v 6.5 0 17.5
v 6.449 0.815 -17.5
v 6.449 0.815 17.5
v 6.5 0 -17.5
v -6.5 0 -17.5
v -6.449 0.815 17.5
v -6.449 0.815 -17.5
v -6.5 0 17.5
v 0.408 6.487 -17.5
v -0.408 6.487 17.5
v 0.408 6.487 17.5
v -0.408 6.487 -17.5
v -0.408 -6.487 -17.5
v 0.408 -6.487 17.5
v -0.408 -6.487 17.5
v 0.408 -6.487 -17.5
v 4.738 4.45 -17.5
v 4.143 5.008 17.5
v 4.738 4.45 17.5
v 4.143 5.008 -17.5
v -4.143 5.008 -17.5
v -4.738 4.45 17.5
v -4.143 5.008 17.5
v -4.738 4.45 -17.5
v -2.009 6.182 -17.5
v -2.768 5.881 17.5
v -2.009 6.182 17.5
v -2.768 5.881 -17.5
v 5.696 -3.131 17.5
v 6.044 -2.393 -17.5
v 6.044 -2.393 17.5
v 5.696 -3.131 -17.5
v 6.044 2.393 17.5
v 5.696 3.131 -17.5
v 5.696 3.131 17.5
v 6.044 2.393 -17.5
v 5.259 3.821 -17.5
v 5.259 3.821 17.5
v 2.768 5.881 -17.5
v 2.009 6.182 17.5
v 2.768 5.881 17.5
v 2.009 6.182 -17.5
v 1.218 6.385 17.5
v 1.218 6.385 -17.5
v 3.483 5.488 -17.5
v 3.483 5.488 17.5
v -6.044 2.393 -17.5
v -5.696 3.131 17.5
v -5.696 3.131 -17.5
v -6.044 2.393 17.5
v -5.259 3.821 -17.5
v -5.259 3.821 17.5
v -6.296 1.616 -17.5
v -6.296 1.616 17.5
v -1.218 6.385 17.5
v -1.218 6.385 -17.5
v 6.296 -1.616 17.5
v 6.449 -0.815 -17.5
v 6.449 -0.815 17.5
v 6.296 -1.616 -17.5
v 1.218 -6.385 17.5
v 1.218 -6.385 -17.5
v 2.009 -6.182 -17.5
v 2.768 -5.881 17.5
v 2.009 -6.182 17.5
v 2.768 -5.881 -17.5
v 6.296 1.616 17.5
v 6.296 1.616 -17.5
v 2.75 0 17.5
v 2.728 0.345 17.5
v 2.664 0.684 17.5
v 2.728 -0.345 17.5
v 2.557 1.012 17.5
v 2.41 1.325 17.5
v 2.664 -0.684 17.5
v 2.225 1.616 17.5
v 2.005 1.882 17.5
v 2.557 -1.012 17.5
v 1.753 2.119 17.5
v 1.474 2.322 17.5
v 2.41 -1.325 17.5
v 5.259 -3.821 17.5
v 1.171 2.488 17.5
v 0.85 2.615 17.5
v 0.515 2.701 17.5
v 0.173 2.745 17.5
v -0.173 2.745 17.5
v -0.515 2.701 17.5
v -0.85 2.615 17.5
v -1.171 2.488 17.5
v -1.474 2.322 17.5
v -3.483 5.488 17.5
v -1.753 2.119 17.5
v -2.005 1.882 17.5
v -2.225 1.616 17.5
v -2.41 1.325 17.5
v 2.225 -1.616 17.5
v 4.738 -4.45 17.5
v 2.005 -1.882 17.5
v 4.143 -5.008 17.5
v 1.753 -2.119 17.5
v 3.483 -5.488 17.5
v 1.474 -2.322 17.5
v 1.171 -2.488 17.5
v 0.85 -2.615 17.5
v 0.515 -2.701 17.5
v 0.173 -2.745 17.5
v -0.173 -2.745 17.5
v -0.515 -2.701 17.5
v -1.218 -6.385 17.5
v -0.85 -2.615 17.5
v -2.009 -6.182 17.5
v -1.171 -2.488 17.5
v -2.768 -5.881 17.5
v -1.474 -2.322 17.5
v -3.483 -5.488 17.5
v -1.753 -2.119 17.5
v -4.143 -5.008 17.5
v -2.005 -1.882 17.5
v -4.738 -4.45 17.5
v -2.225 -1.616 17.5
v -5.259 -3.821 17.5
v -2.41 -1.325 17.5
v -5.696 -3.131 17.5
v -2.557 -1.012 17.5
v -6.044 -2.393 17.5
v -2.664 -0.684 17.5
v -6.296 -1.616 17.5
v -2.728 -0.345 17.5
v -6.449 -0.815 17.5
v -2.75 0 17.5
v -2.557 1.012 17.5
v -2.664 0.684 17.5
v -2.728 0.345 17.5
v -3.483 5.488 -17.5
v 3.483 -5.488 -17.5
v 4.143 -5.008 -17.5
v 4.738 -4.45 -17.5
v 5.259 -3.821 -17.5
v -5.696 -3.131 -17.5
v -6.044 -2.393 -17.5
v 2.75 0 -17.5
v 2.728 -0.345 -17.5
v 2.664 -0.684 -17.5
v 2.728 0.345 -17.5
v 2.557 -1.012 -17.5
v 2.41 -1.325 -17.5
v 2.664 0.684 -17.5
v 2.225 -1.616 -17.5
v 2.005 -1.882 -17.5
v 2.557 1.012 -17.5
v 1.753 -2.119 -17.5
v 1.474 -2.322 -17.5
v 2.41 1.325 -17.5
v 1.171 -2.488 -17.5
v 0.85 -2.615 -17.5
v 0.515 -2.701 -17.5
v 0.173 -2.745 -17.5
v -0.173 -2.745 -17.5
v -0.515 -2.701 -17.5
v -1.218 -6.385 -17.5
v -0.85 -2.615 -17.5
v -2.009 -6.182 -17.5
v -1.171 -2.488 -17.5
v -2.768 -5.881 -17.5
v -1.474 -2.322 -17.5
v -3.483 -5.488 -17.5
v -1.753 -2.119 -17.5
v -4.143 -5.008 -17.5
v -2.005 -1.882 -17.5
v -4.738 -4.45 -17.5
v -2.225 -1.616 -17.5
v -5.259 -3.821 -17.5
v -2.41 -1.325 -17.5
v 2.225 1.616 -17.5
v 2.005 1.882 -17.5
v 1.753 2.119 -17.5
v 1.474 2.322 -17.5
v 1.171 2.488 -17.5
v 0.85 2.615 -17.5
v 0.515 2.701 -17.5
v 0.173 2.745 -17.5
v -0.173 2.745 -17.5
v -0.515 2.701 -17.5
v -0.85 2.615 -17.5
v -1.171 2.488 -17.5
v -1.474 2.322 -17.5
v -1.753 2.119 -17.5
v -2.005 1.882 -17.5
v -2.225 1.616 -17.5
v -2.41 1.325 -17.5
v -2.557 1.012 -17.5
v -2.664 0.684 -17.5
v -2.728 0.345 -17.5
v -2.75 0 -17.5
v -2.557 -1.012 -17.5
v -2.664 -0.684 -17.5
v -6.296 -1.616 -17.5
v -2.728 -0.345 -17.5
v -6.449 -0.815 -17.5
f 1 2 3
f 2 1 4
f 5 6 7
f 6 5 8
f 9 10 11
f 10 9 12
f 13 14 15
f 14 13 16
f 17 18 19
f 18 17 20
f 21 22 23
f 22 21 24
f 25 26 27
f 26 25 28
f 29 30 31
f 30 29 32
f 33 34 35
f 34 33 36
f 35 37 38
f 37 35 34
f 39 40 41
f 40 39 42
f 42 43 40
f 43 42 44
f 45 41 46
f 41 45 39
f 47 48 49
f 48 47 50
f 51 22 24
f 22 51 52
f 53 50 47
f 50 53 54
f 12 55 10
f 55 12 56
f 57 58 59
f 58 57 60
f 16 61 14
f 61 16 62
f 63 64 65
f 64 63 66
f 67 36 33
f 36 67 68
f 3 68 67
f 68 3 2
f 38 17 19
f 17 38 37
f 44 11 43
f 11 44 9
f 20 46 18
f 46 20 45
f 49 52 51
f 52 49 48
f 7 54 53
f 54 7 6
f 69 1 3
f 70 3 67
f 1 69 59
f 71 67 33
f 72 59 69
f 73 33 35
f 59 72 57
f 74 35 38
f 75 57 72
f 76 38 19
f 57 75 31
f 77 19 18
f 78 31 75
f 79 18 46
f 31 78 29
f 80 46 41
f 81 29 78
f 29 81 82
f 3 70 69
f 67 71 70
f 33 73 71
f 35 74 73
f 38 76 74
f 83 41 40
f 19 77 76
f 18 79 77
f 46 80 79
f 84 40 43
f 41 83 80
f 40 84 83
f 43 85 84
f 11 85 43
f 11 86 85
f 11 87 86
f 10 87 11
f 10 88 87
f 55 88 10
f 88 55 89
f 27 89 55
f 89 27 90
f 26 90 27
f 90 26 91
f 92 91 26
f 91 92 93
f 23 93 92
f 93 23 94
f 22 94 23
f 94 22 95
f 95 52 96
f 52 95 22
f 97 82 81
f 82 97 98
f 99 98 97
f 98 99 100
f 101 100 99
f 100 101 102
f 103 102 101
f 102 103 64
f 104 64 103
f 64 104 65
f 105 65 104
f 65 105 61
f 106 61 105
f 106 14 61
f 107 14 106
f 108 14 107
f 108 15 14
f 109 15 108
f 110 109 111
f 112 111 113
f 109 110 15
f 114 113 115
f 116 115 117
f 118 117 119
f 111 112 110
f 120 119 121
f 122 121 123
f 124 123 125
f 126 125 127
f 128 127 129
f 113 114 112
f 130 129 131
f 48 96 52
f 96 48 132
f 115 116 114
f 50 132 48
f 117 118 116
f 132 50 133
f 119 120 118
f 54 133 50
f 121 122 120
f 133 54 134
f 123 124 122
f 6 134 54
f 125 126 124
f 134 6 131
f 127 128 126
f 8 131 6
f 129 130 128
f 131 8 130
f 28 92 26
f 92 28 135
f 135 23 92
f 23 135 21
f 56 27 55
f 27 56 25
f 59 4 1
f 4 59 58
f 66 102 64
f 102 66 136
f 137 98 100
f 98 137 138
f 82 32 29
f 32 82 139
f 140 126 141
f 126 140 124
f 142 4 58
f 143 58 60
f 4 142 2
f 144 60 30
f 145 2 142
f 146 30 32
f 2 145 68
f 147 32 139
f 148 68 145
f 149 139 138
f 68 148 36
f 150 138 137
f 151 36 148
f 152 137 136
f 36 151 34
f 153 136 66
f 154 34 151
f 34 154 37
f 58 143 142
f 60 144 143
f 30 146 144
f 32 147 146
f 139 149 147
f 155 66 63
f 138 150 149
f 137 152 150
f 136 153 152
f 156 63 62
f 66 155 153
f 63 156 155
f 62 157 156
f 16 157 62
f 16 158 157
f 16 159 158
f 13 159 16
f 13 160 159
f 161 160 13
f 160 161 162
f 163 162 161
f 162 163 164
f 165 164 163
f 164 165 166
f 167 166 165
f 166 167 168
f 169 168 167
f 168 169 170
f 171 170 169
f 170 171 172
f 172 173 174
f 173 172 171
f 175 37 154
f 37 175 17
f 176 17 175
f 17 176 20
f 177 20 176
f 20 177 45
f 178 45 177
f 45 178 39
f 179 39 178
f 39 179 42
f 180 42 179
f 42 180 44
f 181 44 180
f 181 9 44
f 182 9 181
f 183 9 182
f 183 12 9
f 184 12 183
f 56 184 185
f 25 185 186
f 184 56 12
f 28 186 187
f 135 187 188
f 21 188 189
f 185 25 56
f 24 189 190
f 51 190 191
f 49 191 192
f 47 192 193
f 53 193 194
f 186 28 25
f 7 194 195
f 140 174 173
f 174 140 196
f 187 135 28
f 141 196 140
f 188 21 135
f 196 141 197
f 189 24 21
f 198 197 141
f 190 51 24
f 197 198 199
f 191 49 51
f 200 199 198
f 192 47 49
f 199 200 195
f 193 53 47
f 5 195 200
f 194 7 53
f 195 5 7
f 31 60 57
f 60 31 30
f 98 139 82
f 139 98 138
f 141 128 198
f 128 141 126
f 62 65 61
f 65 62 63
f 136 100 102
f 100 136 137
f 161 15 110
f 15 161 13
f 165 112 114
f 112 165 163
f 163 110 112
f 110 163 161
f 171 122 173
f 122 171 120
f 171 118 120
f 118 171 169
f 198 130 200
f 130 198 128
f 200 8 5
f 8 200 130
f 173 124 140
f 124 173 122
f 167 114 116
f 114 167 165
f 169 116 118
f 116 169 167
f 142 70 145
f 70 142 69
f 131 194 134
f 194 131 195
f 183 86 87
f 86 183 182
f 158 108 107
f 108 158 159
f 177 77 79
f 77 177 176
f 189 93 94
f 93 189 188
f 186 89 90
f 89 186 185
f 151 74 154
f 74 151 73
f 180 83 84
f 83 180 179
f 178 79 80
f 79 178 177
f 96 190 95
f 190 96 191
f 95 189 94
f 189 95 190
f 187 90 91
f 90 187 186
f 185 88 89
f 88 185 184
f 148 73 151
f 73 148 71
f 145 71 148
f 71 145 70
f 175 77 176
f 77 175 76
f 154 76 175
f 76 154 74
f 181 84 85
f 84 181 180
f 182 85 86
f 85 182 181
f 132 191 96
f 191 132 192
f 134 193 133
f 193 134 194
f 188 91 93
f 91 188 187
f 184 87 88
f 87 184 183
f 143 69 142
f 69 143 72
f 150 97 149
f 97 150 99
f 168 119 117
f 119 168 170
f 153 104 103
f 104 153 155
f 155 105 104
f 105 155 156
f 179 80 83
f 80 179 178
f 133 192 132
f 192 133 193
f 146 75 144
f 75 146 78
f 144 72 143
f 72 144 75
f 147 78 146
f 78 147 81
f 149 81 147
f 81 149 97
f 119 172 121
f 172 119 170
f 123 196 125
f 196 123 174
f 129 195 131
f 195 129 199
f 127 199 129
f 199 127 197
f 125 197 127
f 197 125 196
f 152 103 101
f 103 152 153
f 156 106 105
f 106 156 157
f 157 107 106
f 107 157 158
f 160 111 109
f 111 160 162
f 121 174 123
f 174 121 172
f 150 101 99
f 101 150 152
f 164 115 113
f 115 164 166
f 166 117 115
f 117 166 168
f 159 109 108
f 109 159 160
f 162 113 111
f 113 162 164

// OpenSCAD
$fn = 50;


difference() {
	union() {
		translate(v = [0, 0, -17.5000000000]) {
			cylinder(h = 35, r = 6.5000000000);
		}
	}
	union() {
		translate(v = [0, 0, -100.0000000000]) {
			cylinder(h = 200, r = 2.7500000000);
		}
	}
}
